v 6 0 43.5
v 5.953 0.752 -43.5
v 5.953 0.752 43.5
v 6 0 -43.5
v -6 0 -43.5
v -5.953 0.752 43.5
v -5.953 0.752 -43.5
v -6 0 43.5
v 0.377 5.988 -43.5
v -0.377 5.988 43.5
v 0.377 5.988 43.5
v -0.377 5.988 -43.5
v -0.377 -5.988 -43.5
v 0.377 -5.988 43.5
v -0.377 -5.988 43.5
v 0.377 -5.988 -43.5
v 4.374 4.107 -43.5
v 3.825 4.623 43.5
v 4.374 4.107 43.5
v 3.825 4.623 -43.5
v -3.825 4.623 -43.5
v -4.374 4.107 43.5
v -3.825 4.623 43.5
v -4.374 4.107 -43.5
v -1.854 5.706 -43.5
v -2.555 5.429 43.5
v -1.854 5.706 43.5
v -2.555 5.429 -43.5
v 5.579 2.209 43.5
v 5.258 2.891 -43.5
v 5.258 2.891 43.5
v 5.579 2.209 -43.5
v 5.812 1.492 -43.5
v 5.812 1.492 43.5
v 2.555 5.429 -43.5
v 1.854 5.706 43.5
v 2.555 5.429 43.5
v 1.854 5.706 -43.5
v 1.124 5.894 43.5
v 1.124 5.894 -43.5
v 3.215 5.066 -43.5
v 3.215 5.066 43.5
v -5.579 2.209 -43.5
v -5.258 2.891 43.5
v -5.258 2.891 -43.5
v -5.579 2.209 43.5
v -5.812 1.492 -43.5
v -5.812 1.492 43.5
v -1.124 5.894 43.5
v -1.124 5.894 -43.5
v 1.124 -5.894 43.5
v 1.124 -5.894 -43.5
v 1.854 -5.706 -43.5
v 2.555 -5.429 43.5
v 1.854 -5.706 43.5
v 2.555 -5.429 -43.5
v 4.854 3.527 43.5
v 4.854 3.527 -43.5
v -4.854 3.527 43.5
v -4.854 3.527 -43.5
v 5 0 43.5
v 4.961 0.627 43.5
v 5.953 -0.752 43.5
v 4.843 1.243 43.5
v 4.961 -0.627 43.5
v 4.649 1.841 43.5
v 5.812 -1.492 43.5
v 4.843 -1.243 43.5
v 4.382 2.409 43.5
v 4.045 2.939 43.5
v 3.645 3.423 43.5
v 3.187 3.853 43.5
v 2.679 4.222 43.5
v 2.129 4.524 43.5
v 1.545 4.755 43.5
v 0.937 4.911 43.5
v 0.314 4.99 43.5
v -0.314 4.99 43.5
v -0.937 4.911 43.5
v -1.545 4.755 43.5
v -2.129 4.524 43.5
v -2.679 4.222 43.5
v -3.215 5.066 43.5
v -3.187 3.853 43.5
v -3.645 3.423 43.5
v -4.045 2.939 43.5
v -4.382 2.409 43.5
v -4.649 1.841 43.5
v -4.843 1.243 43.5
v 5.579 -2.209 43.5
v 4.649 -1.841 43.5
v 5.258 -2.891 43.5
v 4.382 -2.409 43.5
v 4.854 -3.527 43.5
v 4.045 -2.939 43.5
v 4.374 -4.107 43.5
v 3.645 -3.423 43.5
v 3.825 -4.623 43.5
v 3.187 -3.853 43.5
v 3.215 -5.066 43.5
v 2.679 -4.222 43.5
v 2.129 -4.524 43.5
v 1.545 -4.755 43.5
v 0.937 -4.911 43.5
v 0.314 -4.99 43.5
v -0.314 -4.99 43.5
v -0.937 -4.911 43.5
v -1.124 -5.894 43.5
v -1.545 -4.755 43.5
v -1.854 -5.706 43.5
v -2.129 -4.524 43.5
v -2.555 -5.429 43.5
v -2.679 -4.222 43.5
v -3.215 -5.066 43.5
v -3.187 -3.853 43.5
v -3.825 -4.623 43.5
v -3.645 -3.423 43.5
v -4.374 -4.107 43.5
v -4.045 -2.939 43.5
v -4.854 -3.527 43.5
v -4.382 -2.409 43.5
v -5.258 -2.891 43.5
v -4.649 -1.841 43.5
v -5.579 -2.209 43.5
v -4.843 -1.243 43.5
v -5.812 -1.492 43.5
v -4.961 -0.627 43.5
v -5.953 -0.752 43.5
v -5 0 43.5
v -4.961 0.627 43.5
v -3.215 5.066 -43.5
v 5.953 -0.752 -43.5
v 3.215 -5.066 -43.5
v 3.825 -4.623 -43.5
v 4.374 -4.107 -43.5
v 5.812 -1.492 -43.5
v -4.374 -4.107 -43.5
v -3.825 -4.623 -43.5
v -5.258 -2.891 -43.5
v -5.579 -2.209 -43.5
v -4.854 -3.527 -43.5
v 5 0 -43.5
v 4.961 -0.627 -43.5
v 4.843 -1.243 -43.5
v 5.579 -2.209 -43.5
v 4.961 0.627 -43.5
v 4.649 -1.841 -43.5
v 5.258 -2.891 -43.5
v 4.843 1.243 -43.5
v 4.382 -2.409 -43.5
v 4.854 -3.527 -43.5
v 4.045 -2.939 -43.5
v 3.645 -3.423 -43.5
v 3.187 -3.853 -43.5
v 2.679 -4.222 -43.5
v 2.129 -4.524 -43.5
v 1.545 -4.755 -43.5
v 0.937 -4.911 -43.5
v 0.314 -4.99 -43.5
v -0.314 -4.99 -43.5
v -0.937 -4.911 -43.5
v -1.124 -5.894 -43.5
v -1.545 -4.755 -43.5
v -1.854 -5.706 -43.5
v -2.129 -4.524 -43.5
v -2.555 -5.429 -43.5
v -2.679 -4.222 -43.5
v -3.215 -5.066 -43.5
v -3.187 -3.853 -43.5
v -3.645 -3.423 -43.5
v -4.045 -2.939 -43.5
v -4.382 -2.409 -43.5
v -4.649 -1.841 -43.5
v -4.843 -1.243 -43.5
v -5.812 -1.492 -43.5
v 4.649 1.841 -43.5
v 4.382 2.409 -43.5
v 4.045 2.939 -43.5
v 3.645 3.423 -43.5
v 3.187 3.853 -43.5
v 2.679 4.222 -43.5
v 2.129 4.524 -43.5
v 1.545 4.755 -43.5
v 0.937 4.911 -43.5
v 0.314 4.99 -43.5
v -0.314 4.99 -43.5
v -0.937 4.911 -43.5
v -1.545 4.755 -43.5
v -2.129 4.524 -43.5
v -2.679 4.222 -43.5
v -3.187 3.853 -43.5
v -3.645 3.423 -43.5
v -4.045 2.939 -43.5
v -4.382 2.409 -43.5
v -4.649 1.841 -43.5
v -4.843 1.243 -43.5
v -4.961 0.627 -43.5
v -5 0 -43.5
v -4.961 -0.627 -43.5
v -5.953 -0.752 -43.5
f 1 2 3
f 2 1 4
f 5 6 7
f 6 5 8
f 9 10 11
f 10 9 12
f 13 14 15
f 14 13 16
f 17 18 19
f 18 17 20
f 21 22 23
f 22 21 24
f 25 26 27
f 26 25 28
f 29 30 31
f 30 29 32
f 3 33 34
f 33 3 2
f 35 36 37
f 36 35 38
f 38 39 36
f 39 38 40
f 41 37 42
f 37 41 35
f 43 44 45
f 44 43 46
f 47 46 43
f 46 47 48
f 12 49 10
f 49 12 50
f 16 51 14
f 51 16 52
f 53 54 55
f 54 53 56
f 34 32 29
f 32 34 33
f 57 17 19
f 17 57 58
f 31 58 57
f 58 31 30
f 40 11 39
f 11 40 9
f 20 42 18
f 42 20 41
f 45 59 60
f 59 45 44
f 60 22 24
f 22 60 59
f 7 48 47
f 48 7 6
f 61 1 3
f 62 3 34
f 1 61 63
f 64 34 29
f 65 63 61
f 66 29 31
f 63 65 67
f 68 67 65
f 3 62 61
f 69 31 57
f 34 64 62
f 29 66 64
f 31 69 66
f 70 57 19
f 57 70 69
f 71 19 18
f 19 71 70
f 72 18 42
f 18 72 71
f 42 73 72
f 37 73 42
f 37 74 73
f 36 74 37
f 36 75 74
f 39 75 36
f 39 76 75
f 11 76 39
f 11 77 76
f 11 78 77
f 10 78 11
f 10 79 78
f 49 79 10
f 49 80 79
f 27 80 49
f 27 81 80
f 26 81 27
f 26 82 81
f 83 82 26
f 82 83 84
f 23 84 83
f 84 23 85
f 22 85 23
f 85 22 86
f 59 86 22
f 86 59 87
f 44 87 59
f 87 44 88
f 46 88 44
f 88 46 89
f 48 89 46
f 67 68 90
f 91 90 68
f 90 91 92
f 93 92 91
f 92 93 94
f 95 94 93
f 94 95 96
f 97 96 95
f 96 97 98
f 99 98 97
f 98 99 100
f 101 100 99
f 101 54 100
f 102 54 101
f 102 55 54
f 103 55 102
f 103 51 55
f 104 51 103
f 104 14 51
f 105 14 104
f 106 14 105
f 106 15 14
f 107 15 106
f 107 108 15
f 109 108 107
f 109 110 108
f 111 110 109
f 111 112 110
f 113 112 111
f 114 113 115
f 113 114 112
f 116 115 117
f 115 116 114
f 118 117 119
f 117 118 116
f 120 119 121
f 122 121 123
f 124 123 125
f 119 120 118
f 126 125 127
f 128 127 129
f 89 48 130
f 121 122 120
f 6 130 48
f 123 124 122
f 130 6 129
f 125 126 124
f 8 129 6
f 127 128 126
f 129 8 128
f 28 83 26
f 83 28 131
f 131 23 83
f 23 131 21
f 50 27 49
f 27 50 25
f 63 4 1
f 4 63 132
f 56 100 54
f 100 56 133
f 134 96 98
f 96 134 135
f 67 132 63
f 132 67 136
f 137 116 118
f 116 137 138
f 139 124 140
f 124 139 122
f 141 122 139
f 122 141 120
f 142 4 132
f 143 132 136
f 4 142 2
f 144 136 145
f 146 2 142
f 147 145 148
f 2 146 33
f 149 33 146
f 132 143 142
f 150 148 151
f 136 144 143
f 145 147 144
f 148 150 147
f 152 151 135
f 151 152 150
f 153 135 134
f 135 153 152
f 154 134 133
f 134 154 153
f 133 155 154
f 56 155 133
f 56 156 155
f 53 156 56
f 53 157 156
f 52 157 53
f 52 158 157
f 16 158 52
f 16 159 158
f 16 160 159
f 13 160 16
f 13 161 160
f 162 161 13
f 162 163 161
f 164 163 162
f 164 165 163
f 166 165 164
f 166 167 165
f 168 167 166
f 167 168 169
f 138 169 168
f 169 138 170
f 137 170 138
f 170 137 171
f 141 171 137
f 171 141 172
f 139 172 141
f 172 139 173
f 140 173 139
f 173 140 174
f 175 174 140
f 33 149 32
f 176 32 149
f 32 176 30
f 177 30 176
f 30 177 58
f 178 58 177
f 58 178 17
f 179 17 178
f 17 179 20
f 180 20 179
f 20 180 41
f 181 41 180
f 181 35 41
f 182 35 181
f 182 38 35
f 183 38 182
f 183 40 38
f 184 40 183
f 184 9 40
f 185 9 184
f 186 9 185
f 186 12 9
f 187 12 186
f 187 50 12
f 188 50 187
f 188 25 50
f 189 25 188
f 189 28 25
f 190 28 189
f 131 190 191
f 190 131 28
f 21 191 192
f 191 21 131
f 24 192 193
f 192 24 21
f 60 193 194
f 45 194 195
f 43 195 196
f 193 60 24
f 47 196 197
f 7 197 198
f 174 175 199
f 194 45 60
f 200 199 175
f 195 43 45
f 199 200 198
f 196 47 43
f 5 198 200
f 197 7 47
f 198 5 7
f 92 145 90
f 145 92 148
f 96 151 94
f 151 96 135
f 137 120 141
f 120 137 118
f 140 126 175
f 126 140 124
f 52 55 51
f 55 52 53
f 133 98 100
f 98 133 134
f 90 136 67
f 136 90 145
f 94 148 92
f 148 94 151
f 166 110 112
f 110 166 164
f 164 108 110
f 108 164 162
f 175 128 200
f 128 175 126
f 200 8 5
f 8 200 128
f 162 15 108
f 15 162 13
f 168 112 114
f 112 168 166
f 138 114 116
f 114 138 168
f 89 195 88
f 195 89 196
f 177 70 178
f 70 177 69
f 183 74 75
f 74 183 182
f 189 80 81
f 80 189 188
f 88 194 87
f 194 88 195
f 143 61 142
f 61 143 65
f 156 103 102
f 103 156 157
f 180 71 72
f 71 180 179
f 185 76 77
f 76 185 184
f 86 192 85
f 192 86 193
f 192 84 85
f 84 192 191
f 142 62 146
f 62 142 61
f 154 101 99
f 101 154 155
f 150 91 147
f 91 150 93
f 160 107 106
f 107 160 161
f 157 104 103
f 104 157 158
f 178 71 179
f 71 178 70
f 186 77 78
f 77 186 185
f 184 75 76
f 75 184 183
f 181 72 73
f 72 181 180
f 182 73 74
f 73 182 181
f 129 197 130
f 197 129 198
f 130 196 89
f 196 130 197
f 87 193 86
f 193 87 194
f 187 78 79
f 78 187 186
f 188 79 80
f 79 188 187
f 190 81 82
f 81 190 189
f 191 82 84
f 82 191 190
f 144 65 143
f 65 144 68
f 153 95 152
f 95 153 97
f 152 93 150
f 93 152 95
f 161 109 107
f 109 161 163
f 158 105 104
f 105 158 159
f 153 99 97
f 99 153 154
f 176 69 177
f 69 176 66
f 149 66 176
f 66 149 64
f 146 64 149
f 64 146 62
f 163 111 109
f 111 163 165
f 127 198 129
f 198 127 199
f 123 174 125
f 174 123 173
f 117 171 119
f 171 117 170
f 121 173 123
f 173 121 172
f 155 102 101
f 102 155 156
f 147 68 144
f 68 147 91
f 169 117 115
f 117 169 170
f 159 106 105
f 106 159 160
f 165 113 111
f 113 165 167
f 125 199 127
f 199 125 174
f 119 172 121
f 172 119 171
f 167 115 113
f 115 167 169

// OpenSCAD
$fn = 50;


difference() {
	union() {
		translate(v = [0, 0, -43.5000000000]) {
			cylinder(h = 87, r = 6.0000000000);
		}
	}
	union() {
		translate(v = [0, 0, -100.0000000000]) {
			cylinder(h = 200, r = 5);
		}
	}
}
